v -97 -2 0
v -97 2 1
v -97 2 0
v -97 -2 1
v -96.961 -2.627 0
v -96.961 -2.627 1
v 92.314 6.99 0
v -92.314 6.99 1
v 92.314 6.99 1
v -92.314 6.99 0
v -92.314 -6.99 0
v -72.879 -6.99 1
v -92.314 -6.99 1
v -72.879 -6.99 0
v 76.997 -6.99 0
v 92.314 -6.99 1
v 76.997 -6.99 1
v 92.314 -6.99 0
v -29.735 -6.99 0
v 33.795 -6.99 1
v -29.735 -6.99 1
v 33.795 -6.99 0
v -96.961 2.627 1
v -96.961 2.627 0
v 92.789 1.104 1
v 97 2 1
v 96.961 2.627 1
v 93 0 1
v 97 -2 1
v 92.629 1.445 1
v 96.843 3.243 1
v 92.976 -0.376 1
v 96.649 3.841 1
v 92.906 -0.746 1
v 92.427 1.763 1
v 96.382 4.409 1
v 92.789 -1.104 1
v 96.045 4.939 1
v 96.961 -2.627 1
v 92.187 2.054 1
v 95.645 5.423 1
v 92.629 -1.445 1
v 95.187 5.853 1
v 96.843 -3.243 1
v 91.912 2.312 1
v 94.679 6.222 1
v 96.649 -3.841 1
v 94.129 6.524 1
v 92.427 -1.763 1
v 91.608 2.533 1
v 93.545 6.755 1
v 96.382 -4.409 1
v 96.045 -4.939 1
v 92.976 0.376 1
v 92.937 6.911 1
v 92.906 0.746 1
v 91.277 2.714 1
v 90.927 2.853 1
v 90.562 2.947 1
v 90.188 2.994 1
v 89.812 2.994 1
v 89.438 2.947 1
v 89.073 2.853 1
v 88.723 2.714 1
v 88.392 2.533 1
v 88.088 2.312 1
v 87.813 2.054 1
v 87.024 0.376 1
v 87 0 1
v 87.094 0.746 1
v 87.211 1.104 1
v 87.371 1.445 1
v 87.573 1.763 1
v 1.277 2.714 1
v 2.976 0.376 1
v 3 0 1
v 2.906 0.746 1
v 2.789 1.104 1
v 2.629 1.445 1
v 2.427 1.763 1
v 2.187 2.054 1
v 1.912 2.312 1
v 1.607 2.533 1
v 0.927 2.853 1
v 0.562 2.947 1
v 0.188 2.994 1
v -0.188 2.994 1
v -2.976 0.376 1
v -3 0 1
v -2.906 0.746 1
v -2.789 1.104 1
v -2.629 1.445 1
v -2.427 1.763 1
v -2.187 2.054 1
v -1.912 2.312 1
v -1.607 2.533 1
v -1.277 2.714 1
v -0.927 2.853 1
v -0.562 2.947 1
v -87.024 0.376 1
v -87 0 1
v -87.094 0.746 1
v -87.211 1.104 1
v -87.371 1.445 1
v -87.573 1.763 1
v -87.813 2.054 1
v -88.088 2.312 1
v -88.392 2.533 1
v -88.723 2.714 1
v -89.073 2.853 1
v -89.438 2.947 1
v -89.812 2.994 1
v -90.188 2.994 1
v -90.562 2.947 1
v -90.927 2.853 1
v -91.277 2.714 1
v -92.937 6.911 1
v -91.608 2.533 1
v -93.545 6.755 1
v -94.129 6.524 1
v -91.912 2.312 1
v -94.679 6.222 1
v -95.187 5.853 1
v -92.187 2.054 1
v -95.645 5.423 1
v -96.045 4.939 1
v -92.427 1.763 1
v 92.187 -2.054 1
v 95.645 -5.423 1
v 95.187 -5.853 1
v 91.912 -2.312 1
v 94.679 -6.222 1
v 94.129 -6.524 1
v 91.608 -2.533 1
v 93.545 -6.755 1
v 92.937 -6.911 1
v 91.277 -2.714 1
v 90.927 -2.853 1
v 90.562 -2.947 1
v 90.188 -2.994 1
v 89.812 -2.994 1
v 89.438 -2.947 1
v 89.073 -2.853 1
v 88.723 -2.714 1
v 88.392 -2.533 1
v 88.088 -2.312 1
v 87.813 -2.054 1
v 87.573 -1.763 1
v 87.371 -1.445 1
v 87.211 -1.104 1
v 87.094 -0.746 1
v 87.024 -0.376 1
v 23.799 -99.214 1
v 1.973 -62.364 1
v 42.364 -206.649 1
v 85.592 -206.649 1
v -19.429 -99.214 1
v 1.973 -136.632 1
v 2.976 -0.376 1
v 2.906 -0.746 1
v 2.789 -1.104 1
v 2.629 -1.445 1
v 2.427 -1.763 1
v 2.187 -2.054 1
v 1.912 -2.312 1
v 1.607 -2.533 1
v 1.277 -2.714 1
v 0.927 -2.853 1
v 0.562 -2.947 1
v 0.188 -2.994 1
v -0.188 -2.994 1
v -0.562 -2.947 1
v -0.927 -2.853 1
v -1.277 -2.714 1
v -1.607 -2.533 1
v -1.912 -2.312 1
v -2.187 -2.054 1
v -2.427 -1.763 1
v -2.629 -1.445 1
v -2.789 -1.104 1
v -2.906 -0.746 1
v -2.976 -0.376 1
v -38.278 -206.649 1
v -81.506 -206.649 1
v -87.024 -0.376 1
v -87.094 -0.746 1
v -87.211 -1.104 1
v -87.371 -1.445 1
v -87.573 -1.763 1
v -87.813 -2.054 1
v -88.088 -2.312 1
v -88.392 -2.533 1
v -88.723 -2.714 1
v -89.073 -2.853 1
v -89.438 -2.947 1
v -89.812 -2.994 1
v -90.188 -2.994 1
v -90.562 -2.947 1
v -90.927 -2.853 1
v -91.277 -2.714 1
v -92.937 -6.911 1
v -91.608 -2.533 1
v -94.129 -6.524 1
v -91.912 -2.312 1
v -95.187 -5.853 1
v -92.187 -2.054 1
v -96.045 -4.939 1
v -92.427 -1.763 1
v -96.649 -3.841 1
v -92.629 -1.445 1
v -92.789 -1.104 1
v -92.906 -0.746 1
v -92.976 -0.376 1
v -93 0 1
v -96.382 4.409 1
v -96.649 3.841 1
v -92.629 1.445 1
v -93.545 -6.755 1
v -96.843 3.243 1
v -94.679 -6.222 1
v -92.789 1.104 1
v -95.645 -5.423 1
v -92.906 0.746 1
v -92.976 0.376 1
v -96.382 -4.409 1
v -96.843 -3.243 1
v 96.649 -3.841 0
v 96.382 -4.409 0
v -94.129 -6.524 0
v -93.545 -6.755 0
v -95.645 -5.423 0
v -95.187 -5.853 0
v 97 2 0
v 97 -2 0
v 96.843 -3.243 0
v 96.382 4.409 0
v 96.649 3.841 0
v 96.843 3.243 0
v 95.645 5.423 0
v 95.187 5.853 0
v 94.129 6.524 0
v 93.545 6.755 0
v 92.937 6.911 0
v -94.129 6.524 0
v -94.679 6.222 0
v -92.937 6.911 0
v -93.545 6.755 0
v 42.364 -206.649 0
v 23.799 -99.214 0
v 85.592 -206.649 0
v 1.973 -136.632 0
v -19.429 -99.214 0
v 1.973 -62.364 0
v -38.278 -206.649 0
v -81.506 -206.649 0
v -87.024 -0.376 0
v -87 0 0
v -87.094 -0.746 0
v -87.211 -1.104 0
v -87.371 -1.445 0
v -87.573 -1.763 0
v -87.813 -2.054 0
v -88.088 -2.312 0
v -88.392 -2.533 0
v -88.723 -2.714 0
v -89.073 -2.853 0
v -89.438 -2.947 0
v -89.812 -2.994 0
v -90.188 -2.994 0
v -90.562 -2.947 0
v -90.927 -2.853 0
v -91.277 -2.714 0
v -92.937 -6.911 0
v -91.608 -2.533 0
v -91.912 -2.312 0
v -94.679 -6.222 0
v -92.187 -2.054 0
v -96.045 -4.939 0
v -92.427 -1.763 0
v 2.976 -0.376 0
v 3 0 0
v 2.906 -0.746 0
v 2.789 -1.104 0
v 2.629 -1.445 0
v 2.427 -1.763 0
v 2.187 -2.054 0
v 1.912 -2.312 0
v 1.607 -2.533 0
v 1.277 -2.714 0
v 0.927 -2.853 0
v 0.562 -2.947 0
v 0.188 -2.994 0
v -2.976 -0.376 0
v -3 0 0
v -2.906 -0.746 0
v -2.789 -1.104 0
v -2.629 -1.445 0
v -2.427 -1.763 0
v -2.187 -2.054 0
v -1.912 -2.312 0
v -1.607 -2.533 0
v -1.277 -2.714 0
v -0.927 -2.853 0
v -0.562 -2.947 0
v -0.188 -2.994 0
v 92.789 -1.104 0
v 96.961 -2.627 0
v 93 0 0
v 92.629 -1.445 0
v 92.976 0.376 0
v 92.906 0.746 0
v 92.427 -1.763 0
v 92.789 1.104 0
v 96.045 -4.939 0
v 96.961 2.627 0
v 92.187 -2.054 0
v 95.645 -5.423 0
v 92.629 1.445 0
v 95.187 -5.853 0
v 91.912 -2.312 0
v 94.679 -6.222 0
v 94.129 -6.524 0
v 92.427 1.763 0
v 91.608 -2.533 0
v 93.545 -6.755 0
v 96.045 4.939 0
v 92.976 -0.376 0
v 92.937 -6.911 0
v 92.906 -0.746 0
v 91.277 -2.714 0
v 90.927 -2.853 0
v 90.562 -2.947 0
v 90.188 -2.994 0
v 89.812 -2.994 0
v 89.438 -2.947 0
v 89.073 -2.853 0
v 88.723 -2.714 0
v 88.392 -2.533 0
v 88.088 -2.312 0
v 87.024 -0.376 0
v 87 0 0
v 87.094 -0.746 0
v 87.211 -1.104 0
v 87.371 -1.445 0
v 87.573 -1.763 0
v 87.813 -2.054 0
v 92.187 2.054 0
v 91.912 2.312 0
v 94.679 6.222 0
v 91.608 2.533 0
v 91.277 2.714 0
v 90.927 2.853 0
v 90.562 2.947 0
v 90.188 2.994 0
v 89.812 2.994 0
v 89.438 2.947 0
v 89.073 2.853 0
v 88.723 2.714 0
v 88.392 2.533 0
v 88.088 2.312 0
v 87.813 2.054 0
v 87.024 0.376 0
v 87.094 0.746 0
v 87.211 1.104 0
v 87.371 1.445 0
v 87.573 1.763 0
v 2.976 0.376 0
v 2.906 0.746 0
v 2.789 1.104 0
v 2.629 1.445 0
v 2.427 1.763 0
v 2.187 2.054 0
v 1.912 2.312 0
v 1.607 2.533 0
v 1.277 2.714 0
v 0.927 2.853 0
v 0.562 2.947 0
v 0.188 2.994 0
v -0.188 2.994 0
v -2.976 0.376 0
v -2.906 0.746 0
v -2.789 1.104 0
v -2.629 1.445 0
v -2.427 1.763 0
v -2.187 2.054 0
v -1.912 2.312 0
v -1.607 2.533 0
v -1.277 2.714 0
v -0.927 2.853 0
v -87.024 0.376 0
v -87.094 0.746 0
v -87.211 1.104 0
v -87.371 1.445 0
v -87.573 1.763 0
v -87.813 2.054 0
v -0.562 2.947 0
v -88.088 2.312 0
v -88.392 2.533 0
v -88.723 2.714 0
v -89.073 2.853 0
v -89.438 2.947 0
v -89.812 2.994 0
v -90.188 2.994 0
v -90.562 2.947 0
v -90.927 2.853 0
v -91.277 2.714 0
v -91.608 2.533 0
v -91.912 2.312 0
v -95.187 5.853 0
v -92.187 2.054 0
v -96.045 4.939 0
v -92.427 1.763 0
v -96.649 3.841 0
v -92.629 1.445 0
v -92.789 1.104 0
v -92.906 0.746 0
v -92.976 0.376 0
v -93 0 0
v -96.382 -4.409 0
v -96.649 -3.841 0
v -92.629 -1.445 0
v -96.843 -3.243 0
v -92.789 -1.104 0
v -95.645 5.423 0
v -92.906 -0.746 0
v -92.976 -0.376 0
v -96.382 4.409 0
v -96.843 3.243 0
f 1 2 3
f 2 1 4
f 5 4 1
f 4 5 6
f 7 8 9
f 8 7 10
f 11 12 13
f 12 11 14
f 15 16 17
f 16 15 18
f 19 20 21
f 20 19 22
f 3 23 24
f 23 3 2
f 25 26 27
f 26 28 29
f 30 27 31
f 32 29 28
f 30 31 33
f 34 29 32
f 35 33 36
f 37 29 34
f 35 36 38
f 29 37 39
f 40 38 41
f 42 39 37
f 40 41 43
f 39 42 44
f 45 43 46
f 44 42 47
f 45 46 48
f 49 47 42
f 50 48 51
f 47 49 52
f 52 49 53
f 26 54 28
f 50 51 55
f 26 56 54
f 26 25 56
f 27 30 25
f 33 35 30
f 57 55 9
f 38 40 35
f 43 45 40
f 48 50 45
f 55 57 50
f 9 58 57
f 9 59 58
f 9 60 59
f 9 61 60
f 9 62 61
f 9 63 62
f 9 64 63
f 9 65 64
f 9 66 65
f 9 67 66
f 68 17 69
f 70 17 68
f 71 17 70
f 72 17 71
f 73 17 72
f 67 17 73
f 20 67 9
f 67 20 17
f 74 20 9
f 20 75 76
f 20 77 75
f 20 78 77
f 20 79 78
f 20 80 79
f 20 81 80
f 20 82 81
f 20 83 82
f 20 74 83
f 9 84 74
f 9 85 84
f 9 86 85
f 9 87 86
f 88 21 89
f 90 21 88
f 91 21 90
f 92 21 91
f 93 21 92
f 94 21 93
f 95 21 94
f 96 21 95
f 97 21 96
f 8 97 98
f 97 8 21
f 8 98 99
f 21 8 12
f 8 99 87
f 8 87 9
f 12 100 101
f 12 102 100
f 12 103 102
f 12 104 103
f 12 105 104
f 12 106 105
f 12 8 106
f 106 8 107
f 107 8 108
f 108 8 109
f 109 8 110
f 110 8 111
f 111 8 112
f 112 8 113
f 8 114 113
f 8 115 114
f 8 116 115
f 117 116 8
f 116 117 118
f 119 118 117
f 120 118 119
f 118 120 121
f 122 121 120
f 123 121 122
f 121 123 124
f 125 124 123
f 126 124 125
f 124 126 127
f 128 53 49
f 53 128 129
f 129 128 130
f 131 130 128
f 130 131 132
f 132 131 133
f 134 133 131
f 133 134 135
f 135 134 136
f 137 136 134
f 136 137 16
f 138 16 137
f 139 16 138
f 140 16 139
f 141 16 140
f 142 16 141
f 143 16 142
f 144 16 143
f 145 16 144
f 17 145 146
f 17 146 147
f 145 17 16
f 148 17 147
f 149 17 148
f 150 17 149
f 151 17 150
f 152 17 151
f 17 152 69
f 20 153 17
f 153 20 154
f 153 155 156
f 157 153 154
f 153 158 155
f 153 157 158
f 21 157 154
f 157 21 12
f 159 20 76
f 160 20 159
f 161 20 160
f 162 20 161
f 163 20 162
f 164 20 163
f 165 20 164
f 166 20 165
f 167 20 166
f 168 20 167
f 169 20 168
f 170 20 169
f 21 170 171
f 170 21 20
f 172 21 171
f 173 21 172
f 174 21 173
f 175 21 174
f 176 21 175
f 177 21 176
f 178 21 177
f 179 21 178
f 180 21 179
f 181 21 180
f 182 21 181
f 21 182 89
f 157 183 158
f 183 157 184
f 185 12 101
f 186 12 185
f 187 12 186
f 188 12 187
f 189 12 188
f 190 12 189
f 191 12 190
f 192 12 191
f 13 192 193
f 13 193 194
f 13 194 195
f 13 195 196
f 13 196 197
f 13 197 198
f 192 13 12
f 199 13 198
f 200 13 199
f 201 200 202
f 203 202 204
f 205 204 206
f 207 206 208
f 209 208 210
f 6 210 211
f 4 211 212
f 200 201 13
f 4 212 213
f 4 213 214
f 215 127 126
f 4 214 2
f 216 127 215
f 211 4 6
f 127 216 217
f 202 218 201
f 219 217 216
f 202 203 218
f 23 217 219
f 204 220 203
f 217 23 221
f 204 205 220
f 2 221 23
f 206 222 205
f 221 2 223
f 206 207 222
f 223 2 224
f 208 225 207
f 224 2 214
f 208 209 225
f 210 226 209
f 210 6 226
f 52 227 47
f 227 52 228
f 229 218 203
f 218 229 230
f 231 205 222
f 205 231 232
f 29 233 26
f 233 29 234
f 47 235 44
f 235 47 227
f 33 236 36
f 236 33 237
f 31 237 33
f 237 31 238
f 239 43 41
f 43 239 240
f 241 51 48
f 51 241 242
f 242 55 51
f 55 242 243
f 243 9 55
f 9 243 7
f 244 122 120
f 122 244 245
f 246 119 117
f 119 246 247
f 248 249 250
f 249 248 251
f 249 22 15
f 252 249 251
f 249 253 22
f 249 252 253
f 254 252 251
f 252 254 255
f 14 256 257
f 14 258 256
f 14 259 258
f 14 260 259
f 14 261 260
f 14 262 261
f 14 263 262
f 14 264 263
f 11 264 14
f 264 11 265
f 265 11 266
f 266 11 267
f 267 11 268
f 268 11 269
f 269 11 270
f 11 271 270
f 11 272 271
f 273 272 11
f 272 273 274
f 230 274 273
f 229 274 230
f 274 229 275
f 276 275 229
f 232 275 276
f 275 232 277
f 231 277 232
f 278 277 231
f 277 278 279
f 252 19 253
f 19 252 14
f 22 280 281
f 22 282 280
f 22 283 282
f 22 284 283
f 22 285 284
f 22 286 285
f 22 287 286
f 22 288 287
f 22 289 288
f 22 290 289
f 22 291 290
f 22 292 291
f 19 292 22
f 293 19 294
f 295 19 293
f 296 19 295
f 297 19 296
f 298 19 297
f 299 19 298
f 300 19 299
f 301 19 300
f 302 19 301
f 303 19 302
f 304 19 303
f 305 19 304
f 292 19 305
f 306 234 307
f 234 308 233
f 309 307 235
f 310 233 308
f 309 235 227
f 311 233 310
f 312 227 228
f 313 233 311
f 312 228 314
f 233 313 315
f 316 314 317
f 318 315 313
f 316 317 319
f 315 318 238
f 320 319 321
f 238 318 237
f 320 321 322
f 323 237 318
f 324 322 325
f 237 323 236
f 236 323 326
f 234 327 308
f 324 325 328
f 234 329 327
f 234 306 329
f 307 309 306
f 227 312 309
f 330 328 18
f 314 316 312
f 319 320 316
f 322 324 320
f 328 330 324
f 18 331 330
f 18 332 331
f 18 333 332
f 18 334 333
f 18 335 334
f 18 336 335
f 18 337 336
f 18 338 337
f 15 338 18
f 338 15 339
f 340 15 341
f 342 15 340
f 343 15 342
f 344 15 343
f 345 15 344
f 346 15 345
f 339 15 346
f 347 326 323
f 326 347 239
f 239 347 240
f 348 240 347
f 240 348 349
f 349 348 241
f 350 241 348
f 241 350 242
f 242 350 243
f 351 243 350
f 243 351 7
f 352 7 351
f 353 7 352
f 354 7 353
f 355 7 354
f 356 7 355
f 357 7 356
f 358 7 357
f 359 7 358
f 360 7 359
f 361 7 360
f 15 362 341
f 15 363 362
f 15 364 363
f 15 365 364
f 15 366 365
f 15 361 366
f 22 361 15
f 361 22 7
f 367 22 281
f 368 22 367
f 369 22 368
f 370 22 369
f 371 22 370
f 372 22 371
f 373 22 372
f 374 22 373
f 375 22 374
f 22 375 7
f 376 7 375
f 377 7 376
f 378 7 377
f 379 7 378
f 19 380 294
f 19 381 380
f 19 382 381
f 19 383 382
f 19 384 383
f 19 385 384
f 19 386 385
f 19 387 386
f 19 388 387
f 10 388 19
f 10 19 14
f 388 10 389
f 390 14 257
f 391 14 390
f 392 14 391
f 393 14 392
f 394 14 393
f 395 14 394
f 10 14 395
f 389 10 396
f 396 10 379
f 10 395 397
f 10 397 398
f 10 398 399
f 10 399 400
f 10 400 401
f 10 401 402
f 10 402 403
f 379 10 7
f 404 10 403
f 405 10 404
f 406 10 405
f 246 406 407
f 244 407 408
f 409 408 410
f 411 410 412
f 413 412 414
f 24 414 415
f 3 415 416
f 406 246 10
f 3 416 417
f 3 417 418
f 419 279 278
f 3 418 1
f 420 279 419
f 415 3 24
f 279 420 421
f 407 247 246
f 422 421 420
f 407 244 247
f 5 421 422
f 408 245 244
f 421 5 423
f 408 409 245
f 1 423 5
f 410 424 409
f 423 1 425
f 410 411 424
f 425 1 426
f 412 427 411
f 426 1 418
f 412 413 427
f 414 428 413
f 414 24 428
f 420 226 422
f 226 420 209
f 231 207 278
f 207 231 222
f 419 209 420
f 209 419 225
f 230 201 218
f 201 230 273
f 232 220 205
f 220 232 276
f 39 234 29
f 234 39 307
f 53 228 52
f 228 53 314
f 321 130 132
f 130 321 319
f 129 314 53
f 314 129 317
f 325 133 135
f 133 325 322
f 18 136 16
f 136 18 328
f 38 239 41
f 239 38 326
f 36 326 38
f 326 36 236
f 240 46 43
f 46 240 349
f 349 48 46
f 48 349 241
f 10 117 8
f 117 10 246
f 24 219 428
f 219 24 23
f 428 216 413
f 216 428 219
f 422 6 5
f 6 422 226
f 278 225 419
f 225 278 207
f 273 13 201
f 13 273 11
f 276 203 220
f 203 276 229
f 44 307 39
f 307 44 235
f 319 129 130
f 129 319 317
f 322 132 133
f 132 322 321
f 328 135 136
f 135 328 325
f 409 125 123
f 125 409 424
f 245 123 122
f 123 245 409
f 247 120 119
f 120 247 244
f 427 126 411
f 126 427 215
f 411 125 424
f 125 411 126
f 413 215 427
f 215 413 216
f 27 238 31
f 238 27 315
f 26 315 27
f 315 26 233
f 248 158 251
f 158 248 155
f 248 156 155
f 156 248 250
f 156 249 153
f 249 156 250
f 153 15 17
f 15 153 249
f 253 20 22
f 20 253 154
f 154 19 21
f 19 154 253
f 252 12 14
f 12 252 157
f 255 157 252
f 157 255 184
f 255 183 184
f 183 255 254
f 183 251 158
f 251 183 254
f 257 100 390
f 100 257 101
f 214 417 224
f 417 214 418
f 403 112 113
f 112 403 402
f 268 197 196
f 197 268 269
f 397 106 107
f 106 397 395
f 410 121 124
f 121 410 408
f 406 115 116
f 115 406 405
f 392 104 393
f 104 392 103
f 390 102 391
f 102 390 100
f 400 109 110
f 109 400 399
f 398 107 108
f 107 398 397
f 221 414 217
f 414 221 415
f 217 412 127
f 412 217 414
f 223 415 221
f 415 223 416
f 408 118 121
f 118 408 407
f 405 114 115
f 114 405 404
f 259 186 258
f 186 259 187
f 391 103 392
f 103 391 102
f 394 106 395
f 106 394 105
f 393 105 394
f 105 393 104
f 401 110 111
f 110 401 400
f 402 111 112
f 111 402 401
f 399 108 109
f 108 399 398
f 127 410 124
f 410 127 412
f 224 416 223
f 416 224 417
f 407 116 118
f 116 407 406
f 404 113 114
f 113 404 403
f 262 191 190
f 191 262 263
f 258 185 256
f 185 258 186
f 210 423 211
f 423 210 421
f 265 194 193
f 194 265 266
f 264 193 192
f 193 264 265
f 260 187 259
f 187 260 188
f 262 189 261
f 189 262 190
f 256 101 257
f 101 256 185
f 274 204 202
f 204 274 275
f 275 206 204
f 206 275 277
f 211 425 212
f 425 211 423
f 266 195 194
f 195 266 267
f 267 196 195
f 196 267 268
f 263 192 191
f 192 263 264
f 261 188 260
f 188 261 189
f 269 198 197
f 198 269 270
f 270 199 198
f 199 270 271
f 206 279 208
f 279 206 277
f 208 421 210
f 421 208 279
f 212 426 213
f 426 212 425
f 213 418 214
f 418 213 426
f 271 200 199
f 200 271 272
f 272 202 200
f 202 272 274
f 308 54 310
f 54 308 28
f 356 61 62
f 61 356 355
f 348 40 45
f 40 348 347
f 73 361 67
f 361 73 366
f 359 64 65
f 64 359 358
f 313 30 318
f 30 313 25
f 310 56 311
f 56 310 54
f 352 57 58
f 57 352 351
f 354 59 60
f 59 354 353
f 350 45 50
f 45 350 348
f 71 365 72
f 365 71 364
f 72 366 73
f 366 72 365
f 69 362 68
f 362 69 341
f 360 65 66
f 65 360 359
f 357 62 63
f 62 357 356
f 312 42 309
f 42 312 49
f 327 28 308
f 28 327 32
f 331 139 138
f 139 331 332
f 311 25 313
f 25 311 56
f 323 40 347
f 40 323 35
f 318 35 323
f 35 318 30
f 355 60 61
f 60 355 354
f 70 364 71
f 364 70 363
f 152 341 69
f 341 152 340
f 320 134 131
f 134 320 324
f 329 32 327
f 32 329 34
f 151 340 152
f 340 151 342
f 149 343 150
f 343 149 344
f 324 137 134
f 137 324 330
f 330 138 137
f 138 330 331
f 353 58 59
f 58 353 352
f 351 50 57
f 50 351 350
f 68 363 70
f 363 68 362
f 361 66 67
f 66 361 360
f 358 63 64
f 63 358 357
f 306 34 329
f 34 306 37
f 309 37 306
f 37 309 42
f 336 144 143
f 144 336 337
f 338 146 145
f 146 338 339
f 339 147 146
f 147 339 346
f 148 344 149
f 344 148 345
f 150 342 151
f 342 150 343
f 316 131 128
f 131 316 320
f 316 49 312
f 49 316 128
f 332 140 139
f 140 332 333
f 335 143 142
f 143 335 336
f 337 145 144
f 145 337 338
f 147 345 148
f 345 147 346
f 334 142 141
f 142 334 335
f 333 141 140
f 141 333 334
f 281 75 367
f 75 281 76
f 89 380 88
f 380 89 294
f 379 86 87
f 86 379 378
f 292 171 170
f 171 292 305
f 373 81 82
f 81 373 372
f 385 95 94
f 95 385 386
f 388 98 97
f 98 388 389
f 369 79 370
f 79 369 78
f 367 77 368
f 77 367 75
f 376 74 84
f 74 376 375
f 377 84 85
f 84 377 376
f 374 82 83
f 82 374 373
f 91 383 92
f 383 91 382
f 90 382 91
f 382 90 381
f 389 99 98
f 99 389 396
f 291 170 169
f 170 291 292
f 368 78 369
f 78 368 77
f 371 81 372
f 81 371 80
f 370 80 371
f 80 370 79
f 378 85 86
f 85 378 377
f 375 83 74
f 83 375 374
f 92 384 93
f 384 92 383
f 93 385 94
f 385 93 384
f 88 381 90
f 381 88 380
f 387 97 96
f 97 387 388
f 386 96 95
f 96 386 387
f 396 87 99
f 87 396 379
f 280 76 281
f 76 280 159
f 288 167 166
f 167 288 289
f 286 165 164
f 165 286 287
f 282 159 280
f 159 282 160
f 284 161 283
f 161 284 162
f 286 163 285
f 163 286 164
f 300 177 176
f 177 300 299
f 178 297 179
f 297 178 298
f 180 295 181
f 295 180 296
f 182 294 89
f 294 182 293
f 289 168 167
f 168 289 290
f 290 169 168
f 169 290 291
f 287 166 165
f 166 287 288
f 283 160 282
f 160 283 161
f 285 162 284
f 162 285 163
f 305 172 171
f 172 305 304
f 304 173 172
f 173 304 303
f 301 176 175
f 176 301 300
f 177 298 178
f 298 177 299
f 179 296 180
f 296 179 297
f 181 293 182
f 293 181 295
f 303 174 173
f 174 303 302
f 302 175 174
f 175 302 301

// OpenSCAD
$fn = 50;


difference() {
	union() {
		translate(v = [0, 0, 0]) {
			rotate(a = [0, 0, 0]) {
				hull() {
					translate(v = [-92.0000000000, 2.0000000000, 0]) {
						rotate(a = [0, 0, 0]) {
							translate(v = [0, 0, 0]) {
								rotate(a = [0, 0, 0]) {
									cylinder(h = 1, r = 5);
								}
							}
						}
					}
					translate(v = [92.0000000000, 2.0000000000, 0]) {
						rotate(a = [0, 0, 0]) {
							translate(v = [0, 0, 0]) {
								rotate(a = [0, 0, 0]) {
									cylinder(h = 1, r = 5);
								}
							}
						}
					}
					translate(v = [-92.0000000000, -2.0000000000, 0]) {
						rotate(a = [0, 0, 0]) {
							translate(v = [0, 0, 0]) {
								rotate(a = [0, 0, 0]) {
									cylinder(h = 1, r = 5);
								}
							}
						}
					}
					translate(v = [92.0000000000, -2.0000000000, 0]) {
						rotate(a = [0, 0, 0]) {
							translate(v = [0, 0, 0]) {
								rotate(a = [0, 0, 0]) {
									cylinder(h = 1, r = 5);
								}
							}
						}
					}
				}
			}
		}
		translate(v = [0, 0, 0]) {
			rotate(a = [0, 0, 0]) {
				linear_extrude(height = 1) {
					text(font = "DejaVu Sans Mono:style=Bold", halign = "center", size = 209.0000000000, text = "X", valign = "top");
				}
			}
		}
	}
	union() {
		translate(v = [-90.0000000000, 0.0000000000, -125.0000000000]) {
			rotate(a = [0, 0, 0]) {
				cylinder(h = 250, r = 3.0000000000);
			}
		}
		translate(v = [90.0000000000, 0.0000000000, -125.0000000000]) {
			rotate(a = [0, 0, 0]) {
				cylinder(h = 250, r = 3.0000000000);
			}
		}
		translate(v = [90.0000000000, 0.0000000000, -125.0000000000]) {
			rotate(a = [0, 0, 0]) {
				cylinder(h = 250, r = 3.0000000000);
			}
		}
		translate(v = [0, 0, -125.0000000000]) {
			rotate(a = [0, 0, 0]) {
				cylinder(h = 250, r = 3.0000000000);
			}
		}
	}
}
